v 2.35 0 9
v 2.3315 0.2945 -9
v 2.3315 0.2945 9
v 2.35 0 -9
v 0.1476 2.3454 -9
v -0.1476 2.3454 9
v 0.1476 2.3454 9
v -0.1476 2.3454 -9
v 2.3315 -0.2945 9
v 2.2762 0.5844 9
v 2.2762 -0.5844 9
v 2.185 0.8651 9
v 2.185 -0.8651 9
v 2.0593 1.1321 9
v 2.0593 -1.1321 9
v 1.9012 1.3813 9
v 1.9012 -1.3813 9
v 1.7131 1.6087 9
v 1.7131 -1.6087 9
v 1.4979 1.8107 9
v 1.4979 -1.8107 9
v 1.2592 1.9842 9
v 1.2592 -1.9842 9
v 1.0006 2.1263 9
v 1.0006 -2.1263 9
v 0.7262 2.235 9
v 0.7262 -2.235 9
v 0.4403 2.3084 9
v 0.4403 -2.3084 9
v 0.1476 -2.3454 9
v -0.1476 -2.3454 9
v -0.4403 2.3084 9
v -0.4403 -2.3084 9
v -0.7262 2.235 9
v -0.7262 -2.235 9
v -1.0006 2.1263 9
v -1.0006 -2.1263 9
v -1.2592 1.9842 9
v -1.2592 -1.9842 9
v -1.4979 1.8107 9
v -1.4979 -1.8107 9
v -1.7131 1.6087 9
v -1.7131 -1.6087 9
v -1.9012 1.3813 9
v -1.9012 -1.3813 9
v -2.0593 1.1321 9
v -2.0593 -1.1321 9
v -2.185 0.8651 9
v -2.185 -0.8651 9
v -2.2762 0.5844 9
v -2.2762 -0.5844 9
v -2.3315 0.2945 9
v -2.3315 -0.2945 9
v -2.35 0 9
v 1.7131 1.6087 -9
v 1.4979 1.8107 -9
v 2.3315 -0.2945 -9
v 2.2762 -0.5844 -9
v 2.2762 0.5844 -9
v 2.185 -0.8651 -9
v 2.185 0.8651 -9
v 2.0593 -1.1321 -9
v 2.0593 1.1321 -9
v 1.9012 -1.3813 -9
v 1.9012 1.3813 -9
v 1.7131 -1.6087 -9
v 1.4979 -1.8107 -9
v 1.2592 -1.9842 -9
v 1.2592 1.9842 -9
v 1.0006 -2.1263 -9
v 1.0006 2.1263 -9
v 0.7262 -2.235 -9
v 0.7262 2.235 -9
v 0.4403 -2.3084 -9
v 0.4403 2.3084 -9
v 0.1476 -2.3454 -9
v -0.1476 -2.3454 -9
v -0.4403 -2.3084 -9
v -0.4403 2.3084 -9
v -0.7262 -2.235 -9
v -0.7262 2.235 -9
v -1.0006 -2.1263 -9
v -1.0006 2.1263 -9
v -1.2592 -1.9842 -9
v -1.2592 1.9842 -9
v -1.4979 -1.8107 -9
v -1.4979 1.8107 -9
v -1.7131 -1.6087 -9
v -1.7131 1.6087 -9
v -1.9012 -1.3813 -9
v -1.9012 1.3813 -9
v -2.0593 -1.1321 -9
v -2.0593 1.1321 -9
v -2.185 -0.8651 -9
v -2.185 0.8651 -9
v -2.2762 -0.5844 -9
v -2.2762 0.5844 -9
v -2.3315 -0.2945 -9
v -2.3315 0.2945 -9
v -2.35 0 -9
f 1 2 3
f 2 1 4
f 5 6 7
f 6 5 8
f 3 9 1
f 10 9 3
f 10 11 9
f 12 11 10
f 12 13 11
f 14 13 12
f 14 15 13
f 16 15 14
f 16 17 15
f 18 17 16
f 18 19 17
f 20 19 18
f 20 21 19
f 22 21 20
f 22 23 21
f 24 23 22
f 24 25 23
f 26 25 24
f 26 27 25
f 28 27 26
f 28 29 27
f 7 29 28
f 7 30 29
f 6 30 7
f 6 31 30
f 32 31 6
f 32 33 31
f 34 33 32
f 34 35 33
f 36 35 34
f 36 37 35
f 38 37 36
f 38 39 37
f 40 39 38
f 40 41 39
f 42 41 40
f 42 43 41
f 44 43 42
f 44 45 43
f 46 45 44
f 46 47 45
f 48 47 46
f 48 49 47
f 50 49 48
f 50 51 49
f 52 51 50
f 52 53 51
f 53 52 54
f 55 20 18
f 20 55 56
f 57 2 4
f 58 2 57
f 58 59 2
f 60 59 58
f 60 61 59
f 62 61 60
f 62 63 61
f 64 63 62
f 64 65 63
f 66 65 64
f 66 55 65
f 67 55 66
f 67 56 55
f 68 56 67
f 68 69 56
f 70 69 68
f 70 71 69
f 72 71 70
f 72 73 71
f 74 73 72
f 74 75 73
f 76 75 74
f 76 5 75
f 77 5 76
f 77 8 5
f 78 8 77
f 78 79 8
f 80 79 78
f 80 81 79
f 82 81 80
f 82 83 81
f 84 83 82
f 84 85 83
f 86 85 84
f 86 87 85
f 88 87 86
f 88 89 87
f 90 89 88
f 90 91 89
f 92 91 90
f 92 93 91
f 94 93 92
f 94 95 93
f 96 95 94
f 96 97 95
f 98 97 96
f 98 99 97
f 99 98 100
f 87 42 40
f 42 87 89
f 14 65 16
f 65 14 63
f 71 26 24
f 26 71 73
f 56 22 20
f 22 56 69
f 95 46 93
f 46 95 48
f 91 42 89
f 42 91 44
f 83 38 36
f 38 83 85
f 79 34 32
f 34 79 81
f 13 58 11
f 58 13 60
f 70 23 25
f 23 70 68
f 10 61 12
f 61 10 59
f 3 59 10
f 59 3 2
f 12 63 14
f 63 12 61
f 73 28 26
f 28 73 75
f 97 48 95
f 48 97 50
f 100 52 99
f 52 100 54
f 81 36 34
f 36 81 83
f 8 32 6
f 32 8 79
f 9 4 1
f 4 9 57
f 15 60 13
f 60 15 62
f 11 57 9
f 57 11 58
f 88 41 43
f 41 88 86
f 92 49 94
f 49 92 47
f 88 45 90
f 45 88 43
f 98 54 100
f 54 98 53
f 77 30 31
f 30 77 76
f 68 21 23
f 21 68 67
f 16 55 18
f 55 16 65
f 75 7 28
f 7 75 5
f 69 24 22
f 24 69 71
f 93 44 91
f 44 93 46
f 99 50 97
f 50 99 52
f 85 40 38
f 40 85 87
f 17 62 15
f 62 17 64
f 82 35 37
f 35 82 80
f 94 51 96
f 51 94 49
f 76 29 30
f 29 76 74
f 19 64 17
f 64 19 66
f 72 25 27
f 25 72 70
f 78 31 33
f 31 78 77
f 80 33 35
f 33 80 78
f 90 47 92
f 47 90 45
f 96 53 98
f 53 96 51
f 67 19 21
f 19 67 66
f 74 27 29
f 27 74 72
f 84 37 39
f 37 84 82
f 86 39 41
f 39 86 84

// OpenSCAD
$fn = 50;


difference() {
	union() {
		translate(v = [0, 0, -9.0000000000]) {
			cylinder(h = 18, r = 2.3500000000);
		}
	}
	union() {
		translate(v = [0, 0, -100.0000000000]) {
			cylinder(h = 200, r = 0);
		}
	}
}
